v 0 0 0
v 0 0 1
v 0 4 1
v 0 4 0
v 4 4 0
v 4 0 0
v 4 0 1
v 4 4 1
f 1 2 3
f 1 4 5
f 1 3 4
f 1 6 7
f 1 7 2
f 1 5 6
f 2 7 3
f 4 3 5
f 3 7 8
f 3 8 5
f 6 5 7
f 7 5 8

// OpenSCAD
/* Warning, this is a very basic generator with a lot of approximation 
input data : [VDFN, 8RX, 4x4x1.0mm, 8, , A, C04-00285A]
generated by com.zoubworld.electronics.cad.model3d.Basic
Date : Sun Feb 15 10:50:48 CET 2026
*/

//body
color("black")
translate([0,0,0])
cube([4.0,4.0,1.0], center=false);
